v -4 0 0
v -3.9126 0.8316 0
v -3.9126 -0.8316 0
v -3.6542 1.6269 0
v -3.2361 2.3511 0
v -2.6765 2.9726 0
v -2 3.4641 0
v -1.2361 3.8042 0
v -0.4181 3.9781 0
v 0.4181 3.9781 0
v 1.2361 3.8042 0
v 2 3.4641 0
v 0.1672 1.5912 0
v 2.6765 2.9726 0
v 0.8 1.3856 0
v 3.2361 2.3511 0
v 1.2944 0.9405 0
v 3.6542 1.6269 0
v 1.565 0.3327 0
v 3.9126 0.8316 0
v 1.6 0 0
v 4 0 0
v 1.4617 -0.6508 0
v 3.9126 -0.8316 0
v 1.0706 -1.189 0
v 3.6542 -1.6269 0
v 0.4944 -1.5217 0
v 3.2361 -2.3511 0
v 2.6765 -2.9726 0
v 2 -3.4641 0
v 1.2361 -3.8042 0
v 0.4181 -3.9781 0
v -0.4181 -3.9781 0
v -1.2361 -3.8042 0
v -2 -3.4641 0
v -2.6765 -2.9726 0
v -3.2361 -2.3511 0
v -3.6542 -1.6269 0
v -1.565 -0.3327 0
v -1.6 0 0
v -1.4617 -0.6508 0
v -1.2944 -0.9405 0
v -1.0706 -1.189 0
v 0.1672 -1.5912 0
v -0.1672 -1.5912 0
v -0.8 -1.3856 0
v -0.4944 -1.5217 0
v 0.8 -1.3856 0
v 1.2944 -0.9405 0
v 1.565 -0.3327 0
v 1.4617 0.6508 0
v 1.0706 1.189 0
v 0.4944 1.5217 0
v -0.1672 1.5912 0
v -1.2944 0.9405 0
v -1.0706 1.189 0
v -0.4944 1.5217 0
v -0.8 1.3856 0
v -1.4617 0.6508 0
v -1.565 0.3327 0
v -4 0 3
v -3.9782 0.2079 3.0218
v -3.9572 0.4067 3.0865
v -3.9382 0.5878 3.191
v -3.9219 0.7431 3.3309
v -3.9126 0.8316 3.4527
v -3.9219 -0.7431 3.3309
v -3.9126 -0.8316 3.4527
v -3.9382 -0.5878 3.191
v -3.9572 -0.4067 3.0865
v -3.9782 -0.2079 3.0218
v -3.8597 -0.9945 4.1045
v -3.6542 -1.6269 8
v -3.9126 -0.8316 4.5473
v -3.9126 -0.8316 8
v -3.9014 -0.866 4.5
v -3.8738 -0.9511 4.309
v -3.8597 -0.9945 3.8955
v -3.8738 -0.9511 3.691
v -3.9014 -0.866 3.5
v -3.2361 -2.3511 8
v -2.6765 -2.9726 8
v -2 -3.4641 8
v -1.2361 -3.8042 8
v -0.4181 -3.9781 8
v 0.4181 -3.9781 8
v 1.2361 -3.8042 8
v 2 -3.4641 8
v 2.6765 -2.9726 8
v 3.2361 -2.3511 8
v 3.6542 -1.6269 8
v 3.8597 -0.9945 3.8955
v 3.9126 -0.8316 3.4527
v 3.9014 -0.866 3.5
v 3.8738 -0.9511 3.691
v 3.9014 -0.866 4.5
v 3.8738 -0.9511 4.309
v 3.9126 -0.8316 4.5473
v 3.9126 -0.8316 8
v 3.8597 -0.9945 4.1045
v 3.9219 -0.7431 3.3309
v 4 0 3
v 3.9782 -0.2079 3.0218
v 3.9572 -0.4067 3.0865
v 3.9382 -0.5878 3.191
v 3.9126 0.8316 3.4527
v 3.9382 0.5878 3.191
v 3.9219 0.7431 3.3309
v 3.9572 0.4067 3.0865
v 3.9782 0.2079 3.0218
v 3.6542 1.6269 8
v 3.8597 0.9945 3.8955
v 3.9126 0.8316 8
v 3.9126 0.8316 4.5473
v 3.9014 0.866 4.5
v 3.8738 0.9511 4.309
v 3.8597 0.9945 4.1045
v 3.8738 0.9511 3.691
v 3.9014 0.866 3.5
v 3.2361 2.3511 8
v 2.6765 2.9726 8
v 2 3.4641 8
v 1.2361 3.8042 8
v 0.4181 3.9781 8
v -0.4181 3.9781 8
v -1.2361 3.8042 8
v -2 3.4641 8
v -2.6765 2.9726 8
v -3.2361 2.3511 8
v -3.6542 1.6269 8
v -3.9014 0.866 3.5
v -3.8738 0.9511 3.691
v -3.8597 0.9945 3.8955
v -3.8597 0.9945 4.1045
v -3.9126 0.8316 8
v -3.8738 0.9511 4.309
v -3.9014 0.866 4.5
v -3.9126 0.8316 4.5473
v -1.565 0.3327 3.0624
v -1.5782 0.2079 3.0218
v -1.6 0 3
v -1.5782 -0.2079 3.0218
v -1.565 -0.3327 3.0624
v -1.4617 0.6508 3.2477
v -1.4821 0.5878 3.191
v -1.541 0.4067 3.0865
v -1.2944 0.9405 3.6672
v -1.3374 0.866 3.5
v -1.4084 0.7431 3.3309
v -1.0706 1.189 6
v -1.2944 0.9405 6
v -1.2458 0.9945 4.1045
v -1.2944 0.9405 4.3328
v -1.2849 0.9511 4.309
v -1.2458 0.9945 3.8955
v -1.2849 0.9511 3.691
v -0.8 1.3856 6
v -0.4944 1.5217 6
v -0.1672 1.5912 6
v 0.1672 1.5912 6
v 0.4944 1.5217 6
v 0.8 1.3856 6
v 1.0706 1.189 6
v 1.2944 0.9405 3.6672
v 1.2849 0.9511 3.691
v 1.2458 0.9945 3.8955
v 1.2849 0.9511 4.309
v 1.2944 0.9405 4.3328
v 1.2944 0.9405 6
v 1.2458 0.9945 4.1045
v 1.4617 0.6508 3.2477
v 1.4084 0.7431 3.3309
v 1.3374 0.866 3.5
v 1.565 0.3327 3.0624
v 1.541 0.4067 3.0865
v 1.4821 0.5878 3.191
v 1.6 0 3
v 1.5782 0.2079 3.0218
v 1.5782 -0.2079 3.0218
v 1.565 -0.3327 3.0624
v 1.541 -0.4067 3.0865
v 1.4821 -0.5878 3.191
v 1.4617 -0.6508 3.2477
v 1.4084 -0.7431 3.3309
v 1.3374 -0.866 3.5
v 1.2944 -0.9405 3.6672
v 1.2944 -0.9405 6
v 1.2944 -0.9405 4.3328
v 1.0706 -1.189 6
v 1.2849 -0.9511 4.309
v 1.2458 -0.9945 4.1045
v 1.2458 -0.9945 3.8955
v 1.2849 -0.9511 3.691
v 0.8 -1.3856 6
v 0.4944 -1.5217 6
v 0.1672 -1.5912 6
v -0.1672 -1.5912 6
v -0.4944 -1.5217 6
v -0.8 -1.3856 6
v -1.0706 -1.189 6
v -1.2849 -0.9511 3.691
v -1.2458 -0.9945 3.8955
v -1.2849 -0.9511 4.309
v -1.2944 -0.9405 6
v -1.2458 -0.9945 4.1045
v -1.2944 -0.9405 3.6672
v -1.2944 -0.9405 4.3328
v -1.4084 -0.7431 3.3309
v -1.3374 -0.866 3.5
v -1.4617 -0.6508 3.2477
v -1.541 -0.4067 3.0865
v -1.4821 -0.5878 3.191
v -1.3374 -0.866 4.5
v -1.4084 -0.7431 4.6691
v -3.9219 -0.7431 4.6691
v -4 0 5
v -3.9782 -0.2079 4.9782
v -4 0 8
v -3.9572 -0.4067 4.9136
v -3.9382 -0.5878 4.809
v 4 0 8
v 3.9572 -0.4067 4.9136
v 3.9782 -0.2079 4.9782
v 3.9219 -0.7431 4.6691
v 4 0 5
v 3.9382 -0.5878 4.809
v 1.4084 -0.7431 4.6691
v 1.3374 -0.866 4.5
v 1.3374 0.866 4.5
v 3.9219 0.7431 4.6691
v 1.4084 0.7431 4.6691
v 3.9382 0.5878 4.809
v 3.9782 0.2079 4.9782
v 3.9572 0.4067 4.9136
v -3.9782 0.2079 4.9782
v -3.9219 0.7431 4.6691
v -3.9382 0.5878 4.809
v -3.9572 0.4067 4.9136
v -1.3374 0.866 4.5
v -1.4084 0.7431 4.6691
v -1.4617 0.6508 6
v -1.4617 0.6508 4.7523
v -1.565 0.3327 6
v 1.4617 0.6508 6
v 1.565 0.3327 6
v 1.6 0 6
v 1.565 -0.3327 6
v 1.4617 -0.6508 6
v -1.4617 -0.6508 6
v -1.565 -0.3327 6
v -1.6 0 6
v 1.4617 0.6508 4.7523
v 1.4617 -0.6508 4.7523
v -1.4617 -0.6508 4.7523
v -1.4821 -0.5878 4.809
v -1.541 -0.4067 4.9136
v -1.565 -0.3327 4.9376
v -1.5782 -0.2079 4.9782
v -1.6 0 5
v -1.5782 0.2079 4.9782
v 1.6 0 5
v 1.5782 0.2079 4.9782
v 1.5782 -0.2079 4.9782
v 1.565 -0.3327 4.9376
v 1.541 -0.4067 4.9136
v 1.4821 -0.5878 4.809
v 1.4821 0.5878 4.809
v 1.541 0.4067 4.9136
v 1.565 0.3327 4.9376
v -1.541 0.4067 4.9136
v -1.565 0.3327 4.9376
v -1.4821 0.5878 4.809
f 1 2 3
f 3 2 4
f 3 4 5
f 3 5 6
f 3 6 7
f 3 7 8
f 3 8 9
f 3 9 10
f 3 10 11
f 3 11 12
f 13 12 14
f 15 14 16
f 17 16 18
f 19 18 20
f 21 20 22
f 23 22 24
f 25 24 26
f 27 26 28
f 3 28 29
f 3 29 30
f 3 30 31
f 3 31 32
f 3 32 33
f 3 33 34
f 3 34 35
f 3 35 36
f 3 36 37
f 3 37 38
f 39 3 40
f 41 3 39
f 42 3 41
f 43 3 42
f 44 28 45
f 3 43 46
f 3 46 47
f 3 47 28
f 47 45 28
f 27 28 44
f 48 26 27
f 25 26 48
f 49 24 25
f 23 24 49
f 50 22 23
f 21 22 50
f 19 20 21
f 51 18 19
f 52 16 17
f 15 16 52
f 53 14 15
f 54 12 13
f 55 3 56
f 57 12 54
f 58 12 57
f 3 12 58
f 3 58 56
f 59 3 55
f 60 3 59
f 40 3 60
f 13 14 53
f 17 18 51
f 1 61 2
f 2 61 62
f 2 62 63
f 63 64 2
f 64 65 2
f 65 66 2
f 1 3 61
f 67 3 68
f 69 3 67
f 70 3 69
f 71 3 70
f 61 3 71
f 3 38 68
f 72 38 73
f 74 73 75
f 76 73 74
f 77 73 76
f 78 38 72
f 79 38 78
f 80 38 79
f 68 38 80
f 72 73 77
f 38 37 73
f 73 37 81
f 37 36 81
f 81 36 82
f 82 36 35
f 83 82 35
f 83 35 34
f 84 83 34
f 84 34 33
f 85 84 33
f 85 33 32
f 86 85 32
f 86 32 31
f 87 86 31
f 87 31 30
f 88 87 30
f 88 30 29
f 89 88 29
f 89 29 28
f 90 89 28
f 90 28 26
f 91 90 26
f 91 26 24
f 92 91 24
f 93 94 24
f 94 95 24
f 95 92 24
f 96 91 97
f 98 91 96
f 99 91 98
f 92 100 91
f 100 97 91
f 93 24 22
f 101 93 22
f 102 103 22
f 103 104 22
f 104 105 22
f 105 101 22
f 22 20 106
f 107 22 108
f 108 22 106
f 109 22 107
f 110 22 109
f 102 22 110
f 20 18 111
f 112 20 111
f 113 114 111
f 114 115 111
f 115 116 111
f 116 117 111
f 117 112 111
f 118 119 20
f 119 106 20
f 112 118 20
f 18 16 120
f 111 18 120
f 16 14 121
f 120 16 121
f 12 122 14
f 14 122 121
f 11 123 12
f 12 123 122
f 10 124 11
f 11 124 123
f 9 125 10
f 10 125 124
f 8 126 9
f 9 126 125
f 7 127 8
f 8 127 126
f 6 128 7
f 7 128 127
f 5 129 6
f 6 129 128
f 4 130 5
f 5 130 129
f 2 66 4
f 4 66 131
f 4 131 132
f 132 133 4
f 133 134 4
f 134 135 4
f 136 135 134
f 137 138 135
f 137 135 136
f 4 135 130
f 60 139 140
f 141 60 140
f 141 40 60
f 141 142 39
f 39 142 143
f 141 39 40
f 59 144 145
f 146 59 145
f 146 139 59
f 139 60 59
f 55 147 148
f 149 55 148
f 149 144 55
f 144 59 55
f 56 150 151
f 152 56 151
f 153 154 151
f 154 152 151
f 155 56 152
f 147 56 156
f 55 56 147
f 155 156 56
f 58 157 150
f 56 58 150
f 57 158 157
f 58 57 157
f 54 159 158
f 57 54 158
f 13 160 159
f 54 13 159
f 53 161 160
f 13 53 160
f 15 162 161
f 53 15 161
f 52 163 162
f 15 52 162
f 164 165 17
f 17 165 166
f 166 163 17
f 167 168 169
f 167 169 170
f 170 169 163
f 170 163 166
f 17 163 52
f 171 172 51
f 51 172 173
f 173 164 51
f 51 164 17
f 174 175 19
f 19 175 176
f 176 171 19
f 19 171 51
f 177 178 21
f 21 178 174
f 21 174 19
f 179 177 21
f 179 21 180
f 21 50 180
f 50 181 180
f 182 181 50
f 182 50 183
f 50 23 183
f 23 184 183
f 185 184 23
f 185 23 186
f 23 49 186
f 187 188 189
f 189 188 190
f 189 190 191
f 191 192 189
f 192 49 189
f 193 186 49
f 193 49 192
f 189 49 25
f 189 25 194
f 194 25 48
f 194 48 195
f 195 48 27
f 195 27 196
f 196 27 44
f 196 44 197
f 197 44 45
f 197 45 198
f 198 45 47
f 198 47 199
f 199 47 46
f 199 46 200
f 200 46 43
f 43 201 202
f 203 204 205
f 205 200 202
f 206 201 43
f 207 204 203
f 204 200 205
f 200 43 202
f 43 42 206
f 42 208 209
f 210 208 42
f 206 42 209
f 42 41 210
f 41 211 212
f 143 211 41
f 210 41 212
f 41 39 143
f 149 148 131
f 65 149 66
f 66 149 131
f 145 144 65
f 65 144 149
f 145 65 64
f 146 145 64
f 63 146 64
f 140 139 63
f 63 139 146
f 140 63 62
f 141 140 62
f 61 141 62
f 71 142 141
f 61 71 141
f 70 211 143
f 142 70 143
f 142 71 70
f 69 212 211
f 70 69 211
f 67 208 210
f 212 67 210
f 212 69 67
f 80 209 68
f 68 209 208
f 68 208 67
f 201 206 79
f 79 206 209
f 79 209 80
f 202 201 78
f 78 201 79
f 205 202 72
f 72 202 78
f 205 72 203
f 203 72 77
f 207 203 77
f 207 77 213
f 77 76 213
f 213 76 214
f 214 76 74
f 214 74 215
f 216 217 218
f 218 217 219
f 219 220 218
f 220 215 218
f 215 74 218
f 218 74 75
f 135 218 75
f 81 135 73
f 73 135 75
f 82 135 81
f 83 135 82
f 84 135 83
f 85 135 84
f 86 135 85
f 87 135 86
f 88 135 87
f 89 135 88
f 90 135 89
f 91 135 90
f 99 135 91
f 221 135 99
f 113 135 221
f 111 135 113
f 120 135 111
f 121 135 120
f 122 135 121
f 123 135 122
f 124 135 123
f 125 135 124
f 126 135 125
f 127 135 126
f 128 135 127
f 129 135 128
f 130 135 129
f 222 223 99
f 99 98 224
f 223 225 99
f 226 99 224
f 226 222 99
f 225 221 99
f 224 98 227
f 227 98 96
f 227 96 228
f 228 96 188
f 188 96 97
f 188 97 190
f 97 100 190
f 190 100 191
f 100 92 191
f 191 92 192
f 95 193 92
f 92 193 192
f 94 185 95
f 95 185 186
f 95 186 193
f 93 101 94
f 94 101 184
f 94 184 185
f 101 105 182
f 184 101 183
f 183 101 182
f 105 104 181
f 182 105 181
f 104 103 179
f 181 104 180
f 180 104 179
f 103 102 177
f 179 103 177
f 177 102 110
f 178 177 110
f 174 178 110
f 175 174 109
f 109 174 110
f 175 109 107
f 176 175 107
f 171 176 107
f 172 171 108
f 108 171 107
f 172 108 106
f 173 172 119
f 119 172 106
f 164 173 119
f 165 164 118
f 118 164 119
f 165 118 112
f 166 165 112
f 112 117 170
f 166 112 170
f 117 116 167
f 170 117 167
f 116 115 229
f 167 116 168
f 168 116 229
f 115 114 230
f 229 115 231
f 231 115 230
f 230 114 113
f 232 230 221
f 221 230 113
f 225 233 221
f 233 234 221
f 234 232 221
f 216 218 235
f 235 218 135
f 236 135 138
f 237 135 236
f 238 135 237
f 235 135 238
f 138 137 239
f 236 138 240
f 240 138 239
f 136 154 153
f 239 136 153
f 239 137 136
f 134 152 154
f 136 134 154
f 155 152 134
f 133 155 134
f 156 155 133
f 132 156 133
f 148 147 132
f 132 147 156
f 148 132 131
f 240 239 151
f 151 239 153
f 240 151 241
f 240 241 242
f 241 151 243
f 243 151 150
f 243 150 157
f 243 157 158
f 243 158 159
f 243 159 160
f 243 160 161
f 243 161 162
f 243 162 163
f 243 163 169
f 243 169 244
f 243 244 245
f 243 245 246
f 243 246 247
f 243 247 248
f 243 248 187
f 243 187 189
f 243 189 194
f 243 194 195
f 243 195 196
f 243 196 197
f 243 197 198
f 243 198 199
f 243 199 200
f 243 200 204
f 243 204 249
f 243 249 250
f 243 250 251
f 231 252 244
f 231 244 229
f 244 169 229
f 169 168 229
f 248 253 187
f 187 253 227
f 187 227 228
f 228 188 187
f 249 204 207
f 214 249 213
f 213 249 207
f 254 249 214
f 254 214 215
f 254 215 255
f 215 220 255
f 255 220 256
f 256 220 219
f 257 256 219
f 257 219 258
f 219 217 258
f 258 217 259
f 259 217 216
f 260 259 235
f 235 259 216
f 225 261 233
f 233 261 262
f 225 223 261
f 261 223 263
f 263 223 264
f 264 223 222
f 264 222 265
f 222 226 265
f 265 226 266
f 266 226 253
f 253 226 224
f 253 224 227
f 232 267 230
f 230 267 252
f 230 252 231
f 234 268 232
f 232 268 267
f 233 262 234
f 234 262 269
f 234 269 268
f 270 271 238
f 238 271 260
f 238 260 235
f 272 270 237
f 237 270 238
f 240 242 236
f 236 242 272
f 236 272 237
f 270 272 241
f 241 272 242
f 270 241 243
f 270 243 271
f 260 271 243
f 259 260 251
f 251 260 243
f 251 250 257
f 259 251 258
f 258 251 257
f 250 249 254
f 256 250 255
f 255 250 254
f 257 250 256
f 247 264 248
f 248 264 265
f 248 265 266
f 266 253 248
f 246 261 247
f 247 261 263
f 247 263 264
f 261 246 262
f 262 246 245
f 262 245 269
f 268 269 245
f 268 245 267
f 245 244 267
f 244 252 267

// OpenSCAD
$fn=30;
difference() {
	cylinder(r=4,h=8);
	cylinder(r=1.6,h=6);
	translate([-12,0,4]) rotate([0,90,0]) cylinder(r=1,h=24);

}
